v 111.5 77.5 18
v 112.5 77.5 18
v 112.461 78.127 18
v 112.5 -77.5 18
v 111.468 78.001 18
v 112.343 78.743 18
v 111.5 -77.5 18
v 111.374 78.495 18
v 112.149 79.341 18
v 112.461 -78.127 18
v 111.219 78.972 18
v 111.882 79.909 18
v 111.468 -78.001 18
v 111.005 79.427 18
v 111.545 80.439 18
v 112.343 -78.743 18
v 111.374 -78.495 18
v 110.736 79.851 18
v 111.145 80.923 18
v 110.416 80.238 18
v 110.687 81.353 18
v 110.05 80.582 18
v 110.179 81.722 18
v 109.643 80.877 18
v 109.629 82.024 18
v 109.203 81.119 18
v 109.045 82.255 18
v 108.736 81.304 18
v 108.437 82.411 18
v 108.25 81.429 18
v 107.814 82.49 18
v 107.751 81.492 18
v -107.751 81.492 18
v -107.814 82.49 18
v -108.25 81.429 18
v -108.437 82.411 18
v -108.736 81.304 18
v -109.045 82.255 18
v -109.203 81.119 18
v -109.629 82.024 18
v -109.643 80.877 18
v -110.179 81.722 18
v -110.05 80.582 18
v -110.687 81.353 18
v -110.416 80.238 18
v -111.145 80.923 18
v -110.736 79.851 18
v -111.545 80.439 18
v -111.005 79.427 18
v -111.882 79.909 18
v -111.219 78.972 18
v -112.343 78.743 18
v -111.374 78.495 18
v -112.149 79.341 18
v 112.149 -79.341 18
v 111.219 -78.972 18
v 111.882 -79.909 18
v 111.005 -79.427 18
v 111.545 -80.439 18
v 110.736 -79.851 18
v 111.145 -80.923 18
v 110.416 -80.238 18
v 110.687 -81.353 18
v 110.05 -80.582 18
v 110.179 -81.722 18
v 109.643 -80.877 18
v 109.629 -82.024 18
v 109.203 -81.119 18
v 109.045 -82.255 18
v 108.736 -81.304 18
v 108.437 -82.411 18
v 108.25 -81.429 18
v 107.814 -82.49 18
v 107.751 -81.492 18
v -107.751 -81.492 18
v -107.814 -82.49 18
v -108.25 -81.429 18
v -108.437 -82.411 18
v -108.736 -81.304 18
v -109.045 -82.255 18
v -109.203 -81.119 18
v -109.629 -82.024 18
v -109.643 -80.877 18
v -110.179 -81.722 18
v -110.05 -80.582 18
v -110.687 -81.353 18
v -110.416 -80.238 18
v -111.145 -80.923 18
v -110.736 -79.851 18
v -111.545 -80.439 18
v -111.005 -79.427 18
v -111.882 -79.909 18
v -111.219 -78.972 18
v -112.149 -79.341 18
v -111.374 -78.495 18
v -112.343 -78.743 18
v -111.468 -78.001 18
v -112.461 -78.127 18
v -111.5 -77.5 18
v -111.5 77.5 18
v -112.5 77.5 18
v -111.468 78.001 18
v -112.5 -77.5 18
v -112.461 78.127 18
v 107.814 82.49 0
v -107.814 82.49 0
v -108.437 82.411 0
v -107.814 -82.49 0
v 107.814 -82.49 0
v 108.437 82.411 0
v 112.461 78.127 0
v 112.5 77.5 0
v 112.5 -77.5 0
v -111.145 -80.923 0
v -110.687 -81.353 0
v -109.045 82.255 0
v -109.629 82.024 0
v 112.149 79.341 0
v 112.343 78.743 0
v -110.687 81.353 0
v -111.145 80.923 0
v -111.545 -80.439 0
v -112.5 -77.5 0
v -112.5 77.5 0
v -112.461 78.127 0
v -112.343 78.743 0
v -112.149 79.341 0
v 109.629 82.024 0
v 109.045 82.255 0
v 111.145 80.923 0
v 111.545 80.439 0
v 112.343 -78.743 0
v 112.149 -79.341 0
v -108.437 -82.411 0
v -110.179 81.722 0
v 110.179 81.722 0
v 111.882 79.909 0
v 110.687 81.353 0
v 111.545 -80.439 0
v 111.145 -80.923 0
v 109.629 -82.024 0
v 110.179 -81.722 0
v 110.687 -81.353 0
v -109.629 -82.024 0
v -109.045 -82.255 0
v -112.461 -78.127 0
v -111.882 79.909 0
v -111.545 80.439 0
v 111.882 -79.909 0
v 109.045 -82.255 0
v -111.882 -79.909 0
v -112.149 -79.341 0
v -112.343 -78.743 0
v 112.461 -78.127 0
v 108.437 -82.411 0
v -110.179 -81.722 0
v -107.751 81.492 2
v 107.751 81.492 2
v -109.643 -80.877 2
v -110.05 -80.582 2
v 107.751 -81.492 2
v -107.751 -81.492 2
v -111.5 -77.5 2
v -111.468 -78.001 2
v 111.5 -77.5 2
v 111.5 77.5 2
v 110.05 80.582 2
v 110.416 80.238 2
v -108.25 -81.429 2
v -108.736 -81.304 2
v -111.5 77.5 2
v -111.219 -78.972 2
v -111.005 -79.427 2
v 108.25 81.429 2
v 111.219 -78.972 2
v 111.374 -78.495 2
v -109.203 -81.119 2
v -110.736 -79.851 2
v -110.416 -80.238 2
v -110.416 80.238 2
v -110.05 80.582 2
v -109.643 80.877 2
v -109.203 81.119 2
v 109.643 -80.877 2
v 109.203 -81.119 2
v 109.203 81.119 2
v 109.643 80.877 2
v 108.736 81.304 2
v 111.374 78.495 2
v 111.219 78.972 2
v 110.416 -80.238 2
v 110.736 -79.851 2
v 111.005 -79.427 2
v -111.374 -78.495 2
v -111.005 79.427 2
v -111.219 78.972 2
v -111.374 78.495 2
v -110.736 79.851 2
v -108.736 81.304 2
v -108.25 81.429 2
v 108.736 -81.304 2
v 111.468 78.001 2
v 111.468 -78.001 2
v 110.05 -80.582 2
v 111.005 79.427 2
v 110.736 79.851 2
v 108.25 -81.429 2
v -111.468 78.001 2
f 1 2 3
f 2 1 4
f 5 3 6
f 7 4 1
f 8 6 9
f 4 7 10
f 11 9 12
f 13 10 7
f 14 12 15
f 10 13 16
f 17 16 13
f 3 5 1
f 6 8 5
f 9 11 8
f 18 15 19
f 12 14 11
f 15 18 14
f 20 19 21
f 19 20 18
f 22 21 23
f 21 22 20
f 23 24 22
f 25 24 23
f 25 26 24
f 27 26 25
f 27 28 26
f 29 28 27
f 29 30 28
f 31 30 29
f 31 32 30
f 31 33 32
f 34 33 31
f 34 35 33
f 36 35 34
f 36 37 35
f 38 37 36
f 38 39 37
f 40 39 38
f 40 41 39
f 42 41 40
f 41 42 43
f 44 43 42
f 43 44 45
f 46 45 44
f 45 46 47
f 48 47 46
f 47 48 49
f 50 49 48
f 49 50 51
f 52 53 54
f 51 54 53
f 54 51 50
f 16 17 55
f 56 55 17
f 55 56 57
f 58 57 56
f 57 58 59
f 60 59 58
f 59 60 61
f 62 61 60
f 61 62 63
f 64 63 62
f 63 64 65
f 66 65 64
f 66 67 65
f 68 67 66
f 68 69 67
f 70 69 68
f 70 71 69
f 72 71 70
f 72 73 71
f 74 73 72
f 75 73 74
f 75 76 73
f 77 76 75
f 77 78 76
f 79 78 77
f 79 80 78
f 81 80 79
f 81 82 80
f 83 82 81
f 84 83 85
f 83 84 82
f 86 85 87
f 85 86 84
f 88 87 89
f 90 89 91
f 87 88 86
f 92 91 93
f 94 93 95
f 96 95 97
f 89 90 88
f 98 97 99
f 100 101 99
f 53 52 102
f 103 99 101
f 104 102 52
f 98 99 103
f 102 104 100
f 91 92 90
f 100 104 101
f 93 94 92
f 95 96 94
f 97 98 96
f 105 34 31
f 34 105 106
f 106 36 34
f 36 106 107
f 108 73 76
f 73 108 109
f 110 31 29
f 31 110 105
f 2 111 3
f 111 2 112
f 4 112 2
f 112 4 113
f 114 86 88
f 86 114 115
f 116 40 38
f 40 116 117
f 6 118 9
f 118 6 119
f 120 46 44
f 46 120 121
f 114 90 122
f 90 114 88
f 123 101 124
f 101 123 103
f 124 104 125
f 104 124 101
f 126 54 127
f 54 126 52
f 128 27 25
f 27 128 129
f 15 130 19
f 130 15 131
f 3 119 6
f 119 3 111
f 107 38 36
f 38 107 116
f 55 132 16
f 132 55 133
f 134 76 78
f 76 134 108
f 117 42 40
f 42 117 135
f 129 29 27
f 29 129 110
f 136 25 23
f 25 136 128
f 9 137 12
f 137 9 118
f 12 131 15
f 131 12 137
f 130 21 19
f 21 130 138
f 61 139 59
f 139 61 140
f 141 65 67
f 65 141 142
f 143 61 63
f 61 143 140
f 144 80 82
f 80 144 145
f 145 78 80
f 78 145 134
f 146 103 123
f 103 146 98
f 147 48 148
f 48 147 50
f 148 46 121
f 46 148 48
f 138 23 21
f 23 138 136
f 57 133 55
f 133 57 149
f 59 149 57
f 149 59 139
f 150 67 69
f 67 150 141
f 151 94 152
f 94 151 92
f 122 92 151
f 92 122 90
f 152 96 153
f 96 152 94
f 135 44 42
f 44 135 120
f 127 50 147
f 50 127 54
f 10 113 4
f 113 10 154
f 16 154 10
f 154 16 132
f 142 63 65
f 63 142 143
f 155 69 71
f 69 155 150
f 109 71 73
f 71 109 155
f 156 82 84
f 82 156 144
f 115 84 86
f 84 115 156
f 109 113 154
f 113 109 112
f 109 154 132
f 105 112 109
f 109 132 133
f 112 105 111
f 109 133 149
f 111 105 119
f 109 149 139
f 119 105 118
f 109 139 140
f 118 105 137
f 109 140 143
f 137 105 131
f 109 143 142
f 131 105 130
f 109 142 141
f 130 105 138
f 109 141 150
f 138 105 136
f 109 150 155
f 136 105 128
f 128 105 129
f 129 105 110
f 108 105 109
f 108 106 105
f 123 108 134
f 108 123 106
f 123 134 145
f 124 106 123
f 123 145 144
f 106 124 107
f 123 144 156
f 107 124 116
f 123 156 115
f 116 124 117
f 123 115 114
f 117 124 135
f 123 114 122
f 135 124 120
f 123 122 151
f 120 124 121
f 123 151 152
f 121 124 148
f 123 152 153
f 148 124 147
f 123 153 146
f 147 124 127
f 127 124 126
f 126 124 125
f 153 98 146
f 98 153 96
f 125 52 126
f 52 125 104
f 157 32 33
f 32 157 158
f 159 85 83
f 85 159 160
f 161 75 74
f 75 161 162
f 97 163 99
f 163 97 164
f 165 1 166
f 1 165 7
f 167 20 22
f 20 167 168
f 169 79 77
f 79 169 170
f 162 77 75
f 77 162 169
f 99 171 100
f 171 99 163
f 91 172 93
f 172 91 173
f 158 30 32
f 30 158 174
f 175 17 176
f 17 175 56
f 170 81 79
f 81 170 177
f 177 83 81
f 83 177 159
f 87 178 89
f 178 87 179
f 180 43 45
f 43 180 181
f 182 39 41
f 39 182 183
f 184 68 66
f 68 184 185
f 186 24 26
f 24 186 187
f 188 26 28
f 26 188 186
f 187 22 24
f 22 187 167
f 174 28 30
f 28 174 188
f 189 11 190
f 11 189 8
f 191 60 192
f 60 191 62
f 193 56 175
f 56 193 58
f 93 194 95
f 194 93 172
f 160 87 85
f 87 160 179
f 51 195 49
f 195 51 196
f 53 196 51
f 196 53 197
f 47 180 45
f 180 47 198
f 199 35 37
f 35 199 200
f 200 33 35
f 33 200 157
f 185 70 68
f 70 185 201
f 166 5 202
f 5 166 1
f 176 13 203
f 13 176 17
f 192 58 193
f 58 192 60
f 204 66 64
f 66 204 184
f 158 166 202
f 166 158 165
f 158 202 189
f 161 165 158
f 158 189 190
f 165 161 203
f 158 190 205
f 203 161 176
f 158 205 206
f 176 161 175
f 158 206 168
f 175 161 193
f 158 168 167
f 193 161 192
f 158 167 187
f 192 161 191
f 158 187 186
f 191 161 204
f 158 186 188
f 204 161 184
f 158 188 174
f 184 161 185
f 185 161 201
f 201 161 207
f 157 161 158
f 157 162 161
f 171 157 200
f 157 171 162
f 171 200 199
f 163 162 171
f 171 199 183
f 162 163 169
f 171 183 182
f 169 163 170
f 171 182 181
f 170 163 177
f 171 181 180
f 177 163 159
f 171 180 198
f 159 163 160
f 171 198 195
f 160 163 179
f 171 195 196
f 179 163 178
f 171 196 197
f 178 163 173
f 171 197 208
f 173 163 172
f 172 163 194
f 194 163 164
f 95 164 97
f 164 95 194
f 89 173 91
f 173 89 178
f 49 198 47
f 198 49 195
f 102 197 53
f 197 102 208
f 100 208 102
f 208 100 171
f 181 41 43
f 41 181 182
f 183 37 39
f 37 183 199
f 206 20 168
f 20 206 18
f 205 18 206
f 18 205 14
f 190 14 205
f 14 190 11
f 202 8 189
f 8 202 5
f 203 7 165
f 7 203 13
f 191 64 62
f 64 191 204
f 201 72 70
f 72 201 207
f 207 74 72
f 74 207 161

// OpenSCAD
$fn = 50;


difference() {
	union() {
		hull() {
			translate(v = [-107.5000000000, 77.5000000000, 0]) {
				cylinder(h = 18, r = 5);
			}
			translate(v = [107.5000000000, 77.5000000000, 0]) {
				cylinder(h = 18, r = 5);
			}
			translate(v = [-107.5000000000, -77.5000000000, 0]) {
				cylinder(h = 18, r = 5);
			}
			translate(v = [107.5000000000, -77.5000000000, 0]) {
				cylinder(h = 18, r = 5);
			}
		}
	}
	union() {
		translate(v = [0, 0, 2]) {
			hull() {
				translate(v = [-107.5000000000, 77.5000000000, 0]) {
					cylinder(h = 16, r = 4);
				}
				translate(v = [107.5000000000, 77.5000000000, 0]) {
					cylinder(h = 16, r = 4);
				}
				translate(v = [-107.5000000000, -77.5000000000, 0]) {
					cylinder(h = 16, r = 4);
				}
				translate(v = [107.5000000000, -77.5000000000, 0]) {
					cylinder(h = 16, r = 4);
				}
			}
		}
	}
}
